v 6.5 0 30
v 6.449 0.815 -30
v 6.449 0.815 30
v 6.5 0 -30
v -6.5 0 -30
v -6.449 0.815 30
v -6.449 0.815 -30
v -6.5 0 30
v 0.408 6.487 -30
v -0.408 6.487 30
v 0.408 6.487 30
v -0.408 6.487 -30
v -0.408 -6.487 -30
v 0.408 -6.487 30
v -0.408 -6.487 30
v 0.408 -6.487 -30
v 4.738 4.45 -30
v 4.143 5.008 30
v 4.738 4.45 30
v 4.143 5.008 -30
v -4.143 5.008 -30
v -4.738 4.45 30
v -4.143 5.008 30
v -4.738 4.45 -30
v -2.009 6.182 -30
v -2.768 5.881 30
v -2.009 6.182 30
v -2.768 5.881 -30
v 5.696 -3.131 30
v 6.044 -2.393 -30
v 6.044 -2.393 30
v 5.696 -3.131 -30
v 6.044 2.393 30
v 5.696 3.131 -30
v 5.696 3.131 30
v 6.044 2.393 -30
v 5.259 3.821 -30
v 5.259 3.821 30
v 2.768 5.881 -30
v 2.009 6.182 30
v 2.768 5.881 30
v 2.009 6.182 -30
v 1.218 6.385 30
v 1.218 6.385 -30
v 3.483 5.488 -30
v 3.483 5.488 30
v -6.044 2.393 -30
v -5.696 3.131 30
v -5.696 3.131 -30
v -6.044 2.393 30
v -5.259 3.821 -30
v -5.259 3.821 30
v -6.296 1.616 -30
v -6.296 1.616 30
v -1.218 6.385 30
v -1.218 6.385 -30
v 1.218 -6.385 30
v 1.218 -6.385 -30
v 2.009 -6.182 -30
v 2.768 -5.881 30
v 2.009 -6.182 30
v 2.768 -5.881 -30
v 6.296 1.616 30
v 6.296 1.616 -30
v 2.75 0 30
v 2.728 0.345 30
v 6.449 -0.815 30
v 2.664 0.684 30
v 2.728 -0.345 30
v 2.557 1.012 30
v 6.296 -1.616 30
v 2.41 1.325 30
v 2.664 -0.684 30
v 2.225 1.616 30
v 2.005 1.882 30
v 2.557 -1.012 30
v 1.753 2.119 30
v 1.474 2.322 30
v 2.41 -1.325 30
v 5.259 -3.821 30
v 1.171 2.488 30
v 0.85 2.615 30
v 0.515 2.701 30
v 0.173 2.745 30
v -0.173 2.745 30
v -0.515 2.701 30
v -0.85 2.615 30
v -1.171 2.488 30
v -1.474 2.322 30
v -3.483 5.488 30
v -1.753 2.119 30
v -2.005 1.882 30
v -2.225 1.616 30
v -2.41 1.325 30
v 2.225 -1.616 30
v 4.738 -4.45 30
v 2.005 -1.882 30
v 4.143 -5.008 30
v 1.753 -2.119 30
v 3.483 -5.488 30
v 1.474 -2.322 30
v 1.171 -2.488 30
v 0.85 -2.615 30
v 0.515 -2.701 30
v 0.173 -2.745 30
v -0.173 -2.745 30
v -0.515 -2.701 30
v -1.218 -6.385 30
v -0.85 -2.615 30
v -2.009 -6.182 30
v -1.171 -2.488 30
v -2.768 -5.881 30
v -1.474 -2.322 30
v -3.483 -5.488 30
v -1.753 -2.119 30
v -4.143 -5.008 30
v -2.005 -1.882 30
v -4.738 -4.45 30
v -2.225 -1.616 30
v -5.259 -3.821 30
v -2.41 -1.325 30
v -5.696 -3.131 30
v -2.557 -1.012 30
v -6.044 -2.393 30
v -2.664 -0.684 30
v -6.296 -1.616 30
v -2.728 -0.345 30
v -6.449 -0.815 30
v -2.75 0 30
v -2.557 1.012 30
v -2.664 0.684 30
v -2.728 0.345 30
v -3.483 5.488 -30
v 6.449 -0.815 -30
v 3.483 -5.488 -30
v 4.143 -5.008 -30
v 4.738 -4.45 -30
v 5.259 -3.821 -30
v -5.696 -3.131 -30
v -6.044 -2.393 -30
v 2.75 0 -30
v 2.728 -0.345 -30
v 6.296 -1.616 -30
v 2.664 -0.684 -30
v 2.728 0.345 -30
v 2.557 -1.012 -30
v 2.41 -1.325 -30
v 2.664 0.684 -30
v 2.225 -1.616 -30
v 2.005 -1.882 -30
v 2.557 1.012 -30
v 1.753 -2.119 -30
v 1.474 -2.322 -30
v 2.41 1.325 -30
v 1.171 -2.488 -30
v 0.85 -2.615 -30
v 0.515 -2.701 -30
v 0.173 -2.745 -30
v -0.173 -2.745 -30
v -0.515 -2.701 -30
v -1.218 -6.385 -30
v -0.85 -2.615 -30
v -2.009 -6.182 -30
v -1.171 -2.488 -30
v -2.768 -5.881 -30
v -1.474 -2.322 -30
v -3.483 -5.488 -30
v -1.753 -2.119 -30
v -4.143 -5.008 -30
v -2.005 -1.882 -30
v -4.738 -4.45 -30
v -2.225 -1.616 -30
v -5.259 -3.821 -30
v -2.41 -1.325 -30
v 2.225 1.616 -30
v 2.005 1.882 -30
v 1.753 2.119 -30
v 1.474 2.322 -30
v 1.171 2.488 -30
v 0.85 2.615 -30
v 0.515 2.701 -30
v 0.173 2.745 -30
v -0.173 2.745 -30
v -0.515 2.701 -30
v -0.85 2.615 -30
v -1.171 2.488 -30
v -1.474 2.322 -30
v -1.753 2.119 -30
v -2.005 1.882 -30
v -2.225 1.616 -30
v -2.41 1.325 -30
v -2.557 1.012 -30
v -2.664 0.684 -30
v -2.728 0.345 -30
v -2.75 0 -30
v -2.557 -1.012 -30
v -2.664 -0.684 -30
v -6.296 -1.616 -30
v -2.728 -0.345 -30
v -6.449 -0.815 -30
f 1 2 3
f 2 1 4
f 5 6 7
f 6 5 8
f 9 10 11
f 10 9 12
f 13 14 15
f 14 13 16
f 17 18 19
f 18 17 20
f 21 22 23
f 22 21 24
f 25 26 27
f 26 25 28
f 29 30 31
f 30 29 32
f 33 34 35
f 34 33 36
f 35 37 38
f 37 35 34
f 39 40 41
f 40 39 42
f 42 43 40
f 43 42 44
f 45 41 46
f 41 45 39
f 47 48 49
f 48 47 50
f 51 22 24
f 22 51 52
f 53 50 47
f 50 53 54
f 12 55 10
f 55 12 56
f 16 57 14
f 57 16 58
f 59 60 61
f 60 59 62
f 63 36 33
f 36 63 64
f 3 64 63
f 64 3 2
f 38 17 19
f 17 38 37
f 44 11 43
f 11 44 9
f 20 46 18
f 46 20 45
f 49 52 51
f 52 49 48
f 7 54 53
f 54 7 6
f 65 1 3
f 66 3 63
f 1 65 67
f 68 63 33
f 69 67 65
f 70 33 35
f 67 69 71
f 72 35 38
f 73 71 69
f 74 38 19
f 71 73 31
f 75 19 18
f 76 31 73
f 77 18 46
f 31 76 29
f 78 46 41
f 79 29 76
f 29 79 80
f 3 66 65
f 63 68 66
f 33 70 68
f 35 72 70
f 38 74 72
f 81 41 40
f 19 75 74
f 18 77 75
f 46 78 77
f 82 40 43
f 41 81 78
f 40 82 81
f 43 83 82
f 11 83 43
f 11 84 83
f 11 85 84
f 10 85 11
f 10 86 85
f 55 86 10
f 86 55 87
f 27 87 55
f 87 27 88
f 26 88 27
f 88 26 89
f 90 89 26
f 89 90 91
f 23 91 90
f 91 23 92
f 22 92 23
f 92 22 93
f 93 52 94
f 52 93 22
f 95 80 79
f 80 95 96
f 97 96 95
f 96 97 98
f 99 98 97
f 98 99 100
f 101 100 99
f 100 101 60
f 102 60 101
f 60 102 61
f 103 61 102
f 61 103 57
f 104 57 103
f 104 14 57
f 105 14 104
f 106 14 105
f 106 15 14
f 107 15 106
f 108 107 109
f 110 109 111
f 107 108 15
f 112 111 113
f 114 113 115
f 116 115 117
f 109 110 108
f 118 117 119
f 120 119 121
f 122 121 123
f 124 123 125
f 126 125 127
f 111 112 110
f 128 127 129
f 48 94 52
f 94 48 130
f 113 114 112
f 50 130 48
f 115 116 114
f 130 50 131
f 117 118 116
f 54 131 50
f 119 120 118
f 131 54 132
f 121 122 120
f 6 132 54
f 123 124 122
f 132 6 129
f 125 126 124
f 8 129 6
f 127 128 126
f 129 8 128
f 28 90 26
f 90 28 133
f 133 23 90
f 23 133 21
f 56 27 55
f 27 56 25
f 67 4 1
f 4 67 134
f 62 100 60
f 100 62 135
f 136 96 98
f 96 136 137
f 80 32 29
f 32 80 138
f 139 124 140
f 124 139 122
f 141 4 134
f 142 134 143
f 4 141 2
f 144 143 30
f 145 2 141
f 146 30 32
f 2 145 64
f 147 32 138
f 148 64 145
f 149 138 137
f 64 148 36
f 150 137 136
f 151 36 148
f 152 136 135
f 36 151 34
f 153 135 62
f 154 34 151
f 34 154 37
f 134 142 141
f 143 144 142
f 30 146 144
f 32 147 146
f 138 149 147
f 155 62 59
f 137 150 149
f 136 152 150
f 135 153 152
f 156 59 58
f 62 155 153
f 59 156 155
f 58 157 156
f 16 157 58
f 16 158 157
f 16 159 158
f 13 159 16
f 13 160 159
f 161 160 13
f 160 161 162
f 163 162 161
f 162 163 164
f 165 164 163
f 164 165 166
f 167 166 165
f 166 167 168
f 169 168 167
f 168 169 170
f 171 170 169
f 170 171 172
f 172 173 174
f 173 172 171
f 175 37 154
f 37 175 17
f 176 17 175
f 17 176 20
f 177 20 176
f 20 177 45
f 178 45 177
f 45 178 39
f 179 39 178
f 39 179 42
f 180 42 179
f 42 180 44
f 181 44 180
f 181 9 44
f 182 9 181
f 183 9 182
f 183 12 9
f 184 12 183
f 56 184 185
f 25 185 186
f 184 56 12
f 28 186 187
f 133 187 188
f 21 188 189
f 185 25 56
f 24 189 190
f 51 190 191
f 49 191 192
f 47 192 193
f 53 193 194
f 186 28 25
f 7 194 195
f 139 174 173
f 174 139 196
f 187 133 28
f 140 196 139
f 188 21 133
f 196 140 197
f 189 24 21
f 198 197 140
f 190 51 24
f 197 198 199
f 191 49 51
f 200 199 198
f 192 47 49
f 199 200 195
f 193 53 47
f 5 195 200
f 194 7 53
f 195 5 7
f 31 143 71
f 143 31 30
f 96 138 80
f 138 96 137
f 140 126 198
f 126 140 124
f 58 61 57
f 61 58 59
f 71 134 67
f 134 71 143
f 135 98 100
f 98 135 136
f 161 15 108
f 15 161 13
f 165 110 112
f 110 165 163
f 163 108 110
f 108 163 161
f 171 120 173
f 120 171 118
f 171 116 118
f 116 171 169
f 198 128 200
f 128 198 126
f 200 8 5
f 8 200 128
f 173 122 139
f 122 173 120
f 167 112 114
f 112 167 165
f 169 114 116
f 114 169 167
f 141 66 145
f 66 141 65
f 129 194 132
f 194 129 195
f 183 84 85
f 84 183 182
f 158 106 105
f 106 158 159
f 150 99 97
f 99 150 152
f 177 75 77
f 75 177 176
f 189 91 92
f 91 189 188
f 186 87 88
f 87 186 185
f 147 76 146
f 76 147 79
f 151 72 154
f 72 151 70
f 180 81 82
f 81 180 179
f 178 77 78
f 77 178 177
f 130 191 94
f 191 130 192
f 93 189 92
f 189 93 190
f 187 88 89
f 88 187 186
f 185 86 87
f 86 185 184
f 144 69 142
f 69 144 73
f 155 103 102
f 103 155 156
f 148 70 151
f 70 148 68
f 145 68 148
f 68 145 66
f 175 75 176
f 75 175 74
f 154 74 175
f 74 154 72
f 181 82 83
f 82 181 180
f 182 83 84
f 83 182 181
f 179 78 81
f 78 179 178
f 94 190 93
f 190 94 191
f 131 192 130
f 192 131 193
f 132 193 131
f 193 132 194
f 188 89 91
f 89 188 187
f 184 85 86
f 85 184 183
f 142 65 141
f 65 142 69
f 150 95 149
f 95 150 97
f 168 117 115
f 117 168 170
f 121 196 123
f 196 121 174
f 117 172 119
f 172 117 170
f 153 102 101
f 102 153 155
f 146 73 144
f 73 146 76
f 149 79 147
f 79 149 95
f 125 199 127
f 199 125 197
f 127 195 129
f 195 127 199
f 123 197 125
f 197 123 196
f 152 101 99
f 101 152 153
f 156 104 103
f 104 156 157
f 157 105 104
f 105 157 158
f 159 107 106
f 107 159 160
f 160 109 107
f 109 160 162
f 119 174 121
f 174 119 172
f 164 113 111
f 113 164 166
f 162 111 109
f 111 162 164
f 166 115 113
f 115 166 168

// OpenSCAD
$fn = 50;


difference() {
	union() {
		translate(v = [0, 0, -30.0000000000]) {
			cylinder(h = 60, r = 6.5000000000);
		}
	}
	union() {
		translate(v = [0, 0, -100.0000000000]) {
			cylinder(h = 200, r = 2.7500000000);
		}
	}
}
